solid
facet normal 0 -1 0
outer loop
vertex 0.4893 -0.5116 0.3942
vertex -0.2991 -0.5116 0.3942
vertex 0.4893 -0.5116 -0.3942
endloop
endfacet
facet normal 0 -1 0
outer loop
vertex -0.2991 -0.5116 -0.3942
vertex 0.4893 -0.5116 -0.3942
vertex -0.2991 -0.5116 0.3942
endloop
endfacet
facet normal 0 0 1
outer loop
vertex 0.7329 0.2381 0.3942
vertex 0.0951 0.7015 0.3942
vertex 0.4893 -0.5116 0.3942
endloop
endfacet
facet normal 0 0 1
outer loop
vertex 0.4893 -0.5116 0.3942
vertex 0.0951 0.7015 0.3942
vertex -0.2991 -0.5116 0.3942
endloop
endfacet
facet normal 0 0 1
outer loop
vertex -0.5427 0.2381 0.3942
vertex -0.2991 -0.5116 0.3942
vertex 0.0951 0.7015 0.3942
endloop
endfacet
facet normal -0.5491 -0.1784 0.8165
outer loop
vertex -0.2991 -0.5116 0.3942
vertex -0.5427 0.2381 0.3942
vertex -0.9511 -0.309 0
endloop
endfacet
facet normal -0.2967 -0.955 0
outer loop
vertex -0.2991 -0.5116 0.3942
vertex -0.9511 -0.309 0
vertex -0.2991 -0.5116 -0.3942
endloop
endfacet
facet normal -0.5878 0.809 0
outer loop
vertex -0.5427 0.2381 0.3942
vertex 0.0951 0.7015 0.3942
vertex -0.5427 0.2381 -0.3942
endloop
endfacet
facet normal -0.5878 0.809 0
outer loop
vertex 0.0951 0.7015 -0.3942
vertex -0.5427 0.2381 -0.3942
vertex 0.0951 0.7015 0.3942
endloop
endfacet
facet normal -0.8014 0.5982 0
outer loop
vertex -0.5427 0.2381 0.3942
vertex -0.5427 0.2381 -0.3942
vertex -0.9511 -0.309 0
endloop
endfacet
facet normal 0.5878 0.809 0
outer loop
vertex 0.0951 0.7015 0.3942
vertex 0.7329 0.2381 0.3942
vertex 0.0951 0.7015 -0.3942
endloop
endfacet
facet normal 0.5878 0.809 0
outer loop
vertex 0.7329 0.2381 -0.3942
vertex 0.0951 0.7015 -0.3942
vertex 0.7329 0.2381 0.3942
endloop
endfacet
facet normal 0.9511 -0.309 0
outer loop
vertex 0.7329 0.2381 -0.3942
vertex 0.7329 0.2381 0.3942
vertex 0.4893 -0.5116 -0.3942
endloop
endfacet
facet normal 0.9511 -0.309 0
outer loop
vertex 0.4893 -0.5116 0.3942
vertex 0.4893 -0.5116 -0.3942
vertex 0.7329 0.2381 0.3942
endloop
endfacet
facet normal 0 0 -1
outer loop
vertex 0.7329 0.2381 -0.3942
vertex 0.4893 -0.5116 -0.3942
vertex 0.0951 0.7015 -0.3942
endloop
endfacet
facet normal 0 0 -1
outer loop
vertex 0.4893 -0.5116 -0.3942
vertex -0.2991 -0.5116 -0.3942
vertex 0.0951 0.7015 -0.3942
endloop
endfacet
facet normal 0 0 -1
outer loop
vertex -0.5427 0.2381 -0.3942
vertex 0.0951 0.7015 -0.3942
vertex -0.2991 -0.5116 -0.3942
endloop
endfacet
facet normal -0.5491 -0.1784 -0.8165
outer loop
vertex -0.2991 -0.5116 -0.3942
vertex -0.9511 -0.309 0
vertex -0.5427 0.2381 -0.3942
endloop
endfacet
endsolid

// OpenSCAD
polyhedron( points = [[-0.29907544944744, -0.511642041464494, 0.394181101051231], [-0.542692767607582, 0.238134968145207, 0.394181101051231], [0.0951056516606269, 0.701522643933151, 0.394181101051231], [0.73290407084562, 0.238134968030668, 0.394181101051231], [0.489286752648259, -0.511642041464494, 0.394181101051231], [-0.299075449412046, -0.511642041415778, -0.394181101044469], [-0.542692767550313, 0.238134968126602, -0.394181101044469], [0.0951056516606269, 0.701522643872936, -0.394181101044469], [0.732904070874253, 0.238134967949645, -0.394181101009074], [0.489286752648259, -0.511642041415778, -0.394181101079867], [-0.951056516320264, -0.309016994297666, -3.38047345523466e-11]], faces = [[0, 5, 9, 4], [0, 4, 3, 2, 1], [0, 1, 10], [0, 10, 5], [1, 2, 7, 6], [1, 6, 10], [2, 3, 8, 7], [3, 4, 9, 8], [5, 6, 7, 8, 9], [5, 10, 6]]);
